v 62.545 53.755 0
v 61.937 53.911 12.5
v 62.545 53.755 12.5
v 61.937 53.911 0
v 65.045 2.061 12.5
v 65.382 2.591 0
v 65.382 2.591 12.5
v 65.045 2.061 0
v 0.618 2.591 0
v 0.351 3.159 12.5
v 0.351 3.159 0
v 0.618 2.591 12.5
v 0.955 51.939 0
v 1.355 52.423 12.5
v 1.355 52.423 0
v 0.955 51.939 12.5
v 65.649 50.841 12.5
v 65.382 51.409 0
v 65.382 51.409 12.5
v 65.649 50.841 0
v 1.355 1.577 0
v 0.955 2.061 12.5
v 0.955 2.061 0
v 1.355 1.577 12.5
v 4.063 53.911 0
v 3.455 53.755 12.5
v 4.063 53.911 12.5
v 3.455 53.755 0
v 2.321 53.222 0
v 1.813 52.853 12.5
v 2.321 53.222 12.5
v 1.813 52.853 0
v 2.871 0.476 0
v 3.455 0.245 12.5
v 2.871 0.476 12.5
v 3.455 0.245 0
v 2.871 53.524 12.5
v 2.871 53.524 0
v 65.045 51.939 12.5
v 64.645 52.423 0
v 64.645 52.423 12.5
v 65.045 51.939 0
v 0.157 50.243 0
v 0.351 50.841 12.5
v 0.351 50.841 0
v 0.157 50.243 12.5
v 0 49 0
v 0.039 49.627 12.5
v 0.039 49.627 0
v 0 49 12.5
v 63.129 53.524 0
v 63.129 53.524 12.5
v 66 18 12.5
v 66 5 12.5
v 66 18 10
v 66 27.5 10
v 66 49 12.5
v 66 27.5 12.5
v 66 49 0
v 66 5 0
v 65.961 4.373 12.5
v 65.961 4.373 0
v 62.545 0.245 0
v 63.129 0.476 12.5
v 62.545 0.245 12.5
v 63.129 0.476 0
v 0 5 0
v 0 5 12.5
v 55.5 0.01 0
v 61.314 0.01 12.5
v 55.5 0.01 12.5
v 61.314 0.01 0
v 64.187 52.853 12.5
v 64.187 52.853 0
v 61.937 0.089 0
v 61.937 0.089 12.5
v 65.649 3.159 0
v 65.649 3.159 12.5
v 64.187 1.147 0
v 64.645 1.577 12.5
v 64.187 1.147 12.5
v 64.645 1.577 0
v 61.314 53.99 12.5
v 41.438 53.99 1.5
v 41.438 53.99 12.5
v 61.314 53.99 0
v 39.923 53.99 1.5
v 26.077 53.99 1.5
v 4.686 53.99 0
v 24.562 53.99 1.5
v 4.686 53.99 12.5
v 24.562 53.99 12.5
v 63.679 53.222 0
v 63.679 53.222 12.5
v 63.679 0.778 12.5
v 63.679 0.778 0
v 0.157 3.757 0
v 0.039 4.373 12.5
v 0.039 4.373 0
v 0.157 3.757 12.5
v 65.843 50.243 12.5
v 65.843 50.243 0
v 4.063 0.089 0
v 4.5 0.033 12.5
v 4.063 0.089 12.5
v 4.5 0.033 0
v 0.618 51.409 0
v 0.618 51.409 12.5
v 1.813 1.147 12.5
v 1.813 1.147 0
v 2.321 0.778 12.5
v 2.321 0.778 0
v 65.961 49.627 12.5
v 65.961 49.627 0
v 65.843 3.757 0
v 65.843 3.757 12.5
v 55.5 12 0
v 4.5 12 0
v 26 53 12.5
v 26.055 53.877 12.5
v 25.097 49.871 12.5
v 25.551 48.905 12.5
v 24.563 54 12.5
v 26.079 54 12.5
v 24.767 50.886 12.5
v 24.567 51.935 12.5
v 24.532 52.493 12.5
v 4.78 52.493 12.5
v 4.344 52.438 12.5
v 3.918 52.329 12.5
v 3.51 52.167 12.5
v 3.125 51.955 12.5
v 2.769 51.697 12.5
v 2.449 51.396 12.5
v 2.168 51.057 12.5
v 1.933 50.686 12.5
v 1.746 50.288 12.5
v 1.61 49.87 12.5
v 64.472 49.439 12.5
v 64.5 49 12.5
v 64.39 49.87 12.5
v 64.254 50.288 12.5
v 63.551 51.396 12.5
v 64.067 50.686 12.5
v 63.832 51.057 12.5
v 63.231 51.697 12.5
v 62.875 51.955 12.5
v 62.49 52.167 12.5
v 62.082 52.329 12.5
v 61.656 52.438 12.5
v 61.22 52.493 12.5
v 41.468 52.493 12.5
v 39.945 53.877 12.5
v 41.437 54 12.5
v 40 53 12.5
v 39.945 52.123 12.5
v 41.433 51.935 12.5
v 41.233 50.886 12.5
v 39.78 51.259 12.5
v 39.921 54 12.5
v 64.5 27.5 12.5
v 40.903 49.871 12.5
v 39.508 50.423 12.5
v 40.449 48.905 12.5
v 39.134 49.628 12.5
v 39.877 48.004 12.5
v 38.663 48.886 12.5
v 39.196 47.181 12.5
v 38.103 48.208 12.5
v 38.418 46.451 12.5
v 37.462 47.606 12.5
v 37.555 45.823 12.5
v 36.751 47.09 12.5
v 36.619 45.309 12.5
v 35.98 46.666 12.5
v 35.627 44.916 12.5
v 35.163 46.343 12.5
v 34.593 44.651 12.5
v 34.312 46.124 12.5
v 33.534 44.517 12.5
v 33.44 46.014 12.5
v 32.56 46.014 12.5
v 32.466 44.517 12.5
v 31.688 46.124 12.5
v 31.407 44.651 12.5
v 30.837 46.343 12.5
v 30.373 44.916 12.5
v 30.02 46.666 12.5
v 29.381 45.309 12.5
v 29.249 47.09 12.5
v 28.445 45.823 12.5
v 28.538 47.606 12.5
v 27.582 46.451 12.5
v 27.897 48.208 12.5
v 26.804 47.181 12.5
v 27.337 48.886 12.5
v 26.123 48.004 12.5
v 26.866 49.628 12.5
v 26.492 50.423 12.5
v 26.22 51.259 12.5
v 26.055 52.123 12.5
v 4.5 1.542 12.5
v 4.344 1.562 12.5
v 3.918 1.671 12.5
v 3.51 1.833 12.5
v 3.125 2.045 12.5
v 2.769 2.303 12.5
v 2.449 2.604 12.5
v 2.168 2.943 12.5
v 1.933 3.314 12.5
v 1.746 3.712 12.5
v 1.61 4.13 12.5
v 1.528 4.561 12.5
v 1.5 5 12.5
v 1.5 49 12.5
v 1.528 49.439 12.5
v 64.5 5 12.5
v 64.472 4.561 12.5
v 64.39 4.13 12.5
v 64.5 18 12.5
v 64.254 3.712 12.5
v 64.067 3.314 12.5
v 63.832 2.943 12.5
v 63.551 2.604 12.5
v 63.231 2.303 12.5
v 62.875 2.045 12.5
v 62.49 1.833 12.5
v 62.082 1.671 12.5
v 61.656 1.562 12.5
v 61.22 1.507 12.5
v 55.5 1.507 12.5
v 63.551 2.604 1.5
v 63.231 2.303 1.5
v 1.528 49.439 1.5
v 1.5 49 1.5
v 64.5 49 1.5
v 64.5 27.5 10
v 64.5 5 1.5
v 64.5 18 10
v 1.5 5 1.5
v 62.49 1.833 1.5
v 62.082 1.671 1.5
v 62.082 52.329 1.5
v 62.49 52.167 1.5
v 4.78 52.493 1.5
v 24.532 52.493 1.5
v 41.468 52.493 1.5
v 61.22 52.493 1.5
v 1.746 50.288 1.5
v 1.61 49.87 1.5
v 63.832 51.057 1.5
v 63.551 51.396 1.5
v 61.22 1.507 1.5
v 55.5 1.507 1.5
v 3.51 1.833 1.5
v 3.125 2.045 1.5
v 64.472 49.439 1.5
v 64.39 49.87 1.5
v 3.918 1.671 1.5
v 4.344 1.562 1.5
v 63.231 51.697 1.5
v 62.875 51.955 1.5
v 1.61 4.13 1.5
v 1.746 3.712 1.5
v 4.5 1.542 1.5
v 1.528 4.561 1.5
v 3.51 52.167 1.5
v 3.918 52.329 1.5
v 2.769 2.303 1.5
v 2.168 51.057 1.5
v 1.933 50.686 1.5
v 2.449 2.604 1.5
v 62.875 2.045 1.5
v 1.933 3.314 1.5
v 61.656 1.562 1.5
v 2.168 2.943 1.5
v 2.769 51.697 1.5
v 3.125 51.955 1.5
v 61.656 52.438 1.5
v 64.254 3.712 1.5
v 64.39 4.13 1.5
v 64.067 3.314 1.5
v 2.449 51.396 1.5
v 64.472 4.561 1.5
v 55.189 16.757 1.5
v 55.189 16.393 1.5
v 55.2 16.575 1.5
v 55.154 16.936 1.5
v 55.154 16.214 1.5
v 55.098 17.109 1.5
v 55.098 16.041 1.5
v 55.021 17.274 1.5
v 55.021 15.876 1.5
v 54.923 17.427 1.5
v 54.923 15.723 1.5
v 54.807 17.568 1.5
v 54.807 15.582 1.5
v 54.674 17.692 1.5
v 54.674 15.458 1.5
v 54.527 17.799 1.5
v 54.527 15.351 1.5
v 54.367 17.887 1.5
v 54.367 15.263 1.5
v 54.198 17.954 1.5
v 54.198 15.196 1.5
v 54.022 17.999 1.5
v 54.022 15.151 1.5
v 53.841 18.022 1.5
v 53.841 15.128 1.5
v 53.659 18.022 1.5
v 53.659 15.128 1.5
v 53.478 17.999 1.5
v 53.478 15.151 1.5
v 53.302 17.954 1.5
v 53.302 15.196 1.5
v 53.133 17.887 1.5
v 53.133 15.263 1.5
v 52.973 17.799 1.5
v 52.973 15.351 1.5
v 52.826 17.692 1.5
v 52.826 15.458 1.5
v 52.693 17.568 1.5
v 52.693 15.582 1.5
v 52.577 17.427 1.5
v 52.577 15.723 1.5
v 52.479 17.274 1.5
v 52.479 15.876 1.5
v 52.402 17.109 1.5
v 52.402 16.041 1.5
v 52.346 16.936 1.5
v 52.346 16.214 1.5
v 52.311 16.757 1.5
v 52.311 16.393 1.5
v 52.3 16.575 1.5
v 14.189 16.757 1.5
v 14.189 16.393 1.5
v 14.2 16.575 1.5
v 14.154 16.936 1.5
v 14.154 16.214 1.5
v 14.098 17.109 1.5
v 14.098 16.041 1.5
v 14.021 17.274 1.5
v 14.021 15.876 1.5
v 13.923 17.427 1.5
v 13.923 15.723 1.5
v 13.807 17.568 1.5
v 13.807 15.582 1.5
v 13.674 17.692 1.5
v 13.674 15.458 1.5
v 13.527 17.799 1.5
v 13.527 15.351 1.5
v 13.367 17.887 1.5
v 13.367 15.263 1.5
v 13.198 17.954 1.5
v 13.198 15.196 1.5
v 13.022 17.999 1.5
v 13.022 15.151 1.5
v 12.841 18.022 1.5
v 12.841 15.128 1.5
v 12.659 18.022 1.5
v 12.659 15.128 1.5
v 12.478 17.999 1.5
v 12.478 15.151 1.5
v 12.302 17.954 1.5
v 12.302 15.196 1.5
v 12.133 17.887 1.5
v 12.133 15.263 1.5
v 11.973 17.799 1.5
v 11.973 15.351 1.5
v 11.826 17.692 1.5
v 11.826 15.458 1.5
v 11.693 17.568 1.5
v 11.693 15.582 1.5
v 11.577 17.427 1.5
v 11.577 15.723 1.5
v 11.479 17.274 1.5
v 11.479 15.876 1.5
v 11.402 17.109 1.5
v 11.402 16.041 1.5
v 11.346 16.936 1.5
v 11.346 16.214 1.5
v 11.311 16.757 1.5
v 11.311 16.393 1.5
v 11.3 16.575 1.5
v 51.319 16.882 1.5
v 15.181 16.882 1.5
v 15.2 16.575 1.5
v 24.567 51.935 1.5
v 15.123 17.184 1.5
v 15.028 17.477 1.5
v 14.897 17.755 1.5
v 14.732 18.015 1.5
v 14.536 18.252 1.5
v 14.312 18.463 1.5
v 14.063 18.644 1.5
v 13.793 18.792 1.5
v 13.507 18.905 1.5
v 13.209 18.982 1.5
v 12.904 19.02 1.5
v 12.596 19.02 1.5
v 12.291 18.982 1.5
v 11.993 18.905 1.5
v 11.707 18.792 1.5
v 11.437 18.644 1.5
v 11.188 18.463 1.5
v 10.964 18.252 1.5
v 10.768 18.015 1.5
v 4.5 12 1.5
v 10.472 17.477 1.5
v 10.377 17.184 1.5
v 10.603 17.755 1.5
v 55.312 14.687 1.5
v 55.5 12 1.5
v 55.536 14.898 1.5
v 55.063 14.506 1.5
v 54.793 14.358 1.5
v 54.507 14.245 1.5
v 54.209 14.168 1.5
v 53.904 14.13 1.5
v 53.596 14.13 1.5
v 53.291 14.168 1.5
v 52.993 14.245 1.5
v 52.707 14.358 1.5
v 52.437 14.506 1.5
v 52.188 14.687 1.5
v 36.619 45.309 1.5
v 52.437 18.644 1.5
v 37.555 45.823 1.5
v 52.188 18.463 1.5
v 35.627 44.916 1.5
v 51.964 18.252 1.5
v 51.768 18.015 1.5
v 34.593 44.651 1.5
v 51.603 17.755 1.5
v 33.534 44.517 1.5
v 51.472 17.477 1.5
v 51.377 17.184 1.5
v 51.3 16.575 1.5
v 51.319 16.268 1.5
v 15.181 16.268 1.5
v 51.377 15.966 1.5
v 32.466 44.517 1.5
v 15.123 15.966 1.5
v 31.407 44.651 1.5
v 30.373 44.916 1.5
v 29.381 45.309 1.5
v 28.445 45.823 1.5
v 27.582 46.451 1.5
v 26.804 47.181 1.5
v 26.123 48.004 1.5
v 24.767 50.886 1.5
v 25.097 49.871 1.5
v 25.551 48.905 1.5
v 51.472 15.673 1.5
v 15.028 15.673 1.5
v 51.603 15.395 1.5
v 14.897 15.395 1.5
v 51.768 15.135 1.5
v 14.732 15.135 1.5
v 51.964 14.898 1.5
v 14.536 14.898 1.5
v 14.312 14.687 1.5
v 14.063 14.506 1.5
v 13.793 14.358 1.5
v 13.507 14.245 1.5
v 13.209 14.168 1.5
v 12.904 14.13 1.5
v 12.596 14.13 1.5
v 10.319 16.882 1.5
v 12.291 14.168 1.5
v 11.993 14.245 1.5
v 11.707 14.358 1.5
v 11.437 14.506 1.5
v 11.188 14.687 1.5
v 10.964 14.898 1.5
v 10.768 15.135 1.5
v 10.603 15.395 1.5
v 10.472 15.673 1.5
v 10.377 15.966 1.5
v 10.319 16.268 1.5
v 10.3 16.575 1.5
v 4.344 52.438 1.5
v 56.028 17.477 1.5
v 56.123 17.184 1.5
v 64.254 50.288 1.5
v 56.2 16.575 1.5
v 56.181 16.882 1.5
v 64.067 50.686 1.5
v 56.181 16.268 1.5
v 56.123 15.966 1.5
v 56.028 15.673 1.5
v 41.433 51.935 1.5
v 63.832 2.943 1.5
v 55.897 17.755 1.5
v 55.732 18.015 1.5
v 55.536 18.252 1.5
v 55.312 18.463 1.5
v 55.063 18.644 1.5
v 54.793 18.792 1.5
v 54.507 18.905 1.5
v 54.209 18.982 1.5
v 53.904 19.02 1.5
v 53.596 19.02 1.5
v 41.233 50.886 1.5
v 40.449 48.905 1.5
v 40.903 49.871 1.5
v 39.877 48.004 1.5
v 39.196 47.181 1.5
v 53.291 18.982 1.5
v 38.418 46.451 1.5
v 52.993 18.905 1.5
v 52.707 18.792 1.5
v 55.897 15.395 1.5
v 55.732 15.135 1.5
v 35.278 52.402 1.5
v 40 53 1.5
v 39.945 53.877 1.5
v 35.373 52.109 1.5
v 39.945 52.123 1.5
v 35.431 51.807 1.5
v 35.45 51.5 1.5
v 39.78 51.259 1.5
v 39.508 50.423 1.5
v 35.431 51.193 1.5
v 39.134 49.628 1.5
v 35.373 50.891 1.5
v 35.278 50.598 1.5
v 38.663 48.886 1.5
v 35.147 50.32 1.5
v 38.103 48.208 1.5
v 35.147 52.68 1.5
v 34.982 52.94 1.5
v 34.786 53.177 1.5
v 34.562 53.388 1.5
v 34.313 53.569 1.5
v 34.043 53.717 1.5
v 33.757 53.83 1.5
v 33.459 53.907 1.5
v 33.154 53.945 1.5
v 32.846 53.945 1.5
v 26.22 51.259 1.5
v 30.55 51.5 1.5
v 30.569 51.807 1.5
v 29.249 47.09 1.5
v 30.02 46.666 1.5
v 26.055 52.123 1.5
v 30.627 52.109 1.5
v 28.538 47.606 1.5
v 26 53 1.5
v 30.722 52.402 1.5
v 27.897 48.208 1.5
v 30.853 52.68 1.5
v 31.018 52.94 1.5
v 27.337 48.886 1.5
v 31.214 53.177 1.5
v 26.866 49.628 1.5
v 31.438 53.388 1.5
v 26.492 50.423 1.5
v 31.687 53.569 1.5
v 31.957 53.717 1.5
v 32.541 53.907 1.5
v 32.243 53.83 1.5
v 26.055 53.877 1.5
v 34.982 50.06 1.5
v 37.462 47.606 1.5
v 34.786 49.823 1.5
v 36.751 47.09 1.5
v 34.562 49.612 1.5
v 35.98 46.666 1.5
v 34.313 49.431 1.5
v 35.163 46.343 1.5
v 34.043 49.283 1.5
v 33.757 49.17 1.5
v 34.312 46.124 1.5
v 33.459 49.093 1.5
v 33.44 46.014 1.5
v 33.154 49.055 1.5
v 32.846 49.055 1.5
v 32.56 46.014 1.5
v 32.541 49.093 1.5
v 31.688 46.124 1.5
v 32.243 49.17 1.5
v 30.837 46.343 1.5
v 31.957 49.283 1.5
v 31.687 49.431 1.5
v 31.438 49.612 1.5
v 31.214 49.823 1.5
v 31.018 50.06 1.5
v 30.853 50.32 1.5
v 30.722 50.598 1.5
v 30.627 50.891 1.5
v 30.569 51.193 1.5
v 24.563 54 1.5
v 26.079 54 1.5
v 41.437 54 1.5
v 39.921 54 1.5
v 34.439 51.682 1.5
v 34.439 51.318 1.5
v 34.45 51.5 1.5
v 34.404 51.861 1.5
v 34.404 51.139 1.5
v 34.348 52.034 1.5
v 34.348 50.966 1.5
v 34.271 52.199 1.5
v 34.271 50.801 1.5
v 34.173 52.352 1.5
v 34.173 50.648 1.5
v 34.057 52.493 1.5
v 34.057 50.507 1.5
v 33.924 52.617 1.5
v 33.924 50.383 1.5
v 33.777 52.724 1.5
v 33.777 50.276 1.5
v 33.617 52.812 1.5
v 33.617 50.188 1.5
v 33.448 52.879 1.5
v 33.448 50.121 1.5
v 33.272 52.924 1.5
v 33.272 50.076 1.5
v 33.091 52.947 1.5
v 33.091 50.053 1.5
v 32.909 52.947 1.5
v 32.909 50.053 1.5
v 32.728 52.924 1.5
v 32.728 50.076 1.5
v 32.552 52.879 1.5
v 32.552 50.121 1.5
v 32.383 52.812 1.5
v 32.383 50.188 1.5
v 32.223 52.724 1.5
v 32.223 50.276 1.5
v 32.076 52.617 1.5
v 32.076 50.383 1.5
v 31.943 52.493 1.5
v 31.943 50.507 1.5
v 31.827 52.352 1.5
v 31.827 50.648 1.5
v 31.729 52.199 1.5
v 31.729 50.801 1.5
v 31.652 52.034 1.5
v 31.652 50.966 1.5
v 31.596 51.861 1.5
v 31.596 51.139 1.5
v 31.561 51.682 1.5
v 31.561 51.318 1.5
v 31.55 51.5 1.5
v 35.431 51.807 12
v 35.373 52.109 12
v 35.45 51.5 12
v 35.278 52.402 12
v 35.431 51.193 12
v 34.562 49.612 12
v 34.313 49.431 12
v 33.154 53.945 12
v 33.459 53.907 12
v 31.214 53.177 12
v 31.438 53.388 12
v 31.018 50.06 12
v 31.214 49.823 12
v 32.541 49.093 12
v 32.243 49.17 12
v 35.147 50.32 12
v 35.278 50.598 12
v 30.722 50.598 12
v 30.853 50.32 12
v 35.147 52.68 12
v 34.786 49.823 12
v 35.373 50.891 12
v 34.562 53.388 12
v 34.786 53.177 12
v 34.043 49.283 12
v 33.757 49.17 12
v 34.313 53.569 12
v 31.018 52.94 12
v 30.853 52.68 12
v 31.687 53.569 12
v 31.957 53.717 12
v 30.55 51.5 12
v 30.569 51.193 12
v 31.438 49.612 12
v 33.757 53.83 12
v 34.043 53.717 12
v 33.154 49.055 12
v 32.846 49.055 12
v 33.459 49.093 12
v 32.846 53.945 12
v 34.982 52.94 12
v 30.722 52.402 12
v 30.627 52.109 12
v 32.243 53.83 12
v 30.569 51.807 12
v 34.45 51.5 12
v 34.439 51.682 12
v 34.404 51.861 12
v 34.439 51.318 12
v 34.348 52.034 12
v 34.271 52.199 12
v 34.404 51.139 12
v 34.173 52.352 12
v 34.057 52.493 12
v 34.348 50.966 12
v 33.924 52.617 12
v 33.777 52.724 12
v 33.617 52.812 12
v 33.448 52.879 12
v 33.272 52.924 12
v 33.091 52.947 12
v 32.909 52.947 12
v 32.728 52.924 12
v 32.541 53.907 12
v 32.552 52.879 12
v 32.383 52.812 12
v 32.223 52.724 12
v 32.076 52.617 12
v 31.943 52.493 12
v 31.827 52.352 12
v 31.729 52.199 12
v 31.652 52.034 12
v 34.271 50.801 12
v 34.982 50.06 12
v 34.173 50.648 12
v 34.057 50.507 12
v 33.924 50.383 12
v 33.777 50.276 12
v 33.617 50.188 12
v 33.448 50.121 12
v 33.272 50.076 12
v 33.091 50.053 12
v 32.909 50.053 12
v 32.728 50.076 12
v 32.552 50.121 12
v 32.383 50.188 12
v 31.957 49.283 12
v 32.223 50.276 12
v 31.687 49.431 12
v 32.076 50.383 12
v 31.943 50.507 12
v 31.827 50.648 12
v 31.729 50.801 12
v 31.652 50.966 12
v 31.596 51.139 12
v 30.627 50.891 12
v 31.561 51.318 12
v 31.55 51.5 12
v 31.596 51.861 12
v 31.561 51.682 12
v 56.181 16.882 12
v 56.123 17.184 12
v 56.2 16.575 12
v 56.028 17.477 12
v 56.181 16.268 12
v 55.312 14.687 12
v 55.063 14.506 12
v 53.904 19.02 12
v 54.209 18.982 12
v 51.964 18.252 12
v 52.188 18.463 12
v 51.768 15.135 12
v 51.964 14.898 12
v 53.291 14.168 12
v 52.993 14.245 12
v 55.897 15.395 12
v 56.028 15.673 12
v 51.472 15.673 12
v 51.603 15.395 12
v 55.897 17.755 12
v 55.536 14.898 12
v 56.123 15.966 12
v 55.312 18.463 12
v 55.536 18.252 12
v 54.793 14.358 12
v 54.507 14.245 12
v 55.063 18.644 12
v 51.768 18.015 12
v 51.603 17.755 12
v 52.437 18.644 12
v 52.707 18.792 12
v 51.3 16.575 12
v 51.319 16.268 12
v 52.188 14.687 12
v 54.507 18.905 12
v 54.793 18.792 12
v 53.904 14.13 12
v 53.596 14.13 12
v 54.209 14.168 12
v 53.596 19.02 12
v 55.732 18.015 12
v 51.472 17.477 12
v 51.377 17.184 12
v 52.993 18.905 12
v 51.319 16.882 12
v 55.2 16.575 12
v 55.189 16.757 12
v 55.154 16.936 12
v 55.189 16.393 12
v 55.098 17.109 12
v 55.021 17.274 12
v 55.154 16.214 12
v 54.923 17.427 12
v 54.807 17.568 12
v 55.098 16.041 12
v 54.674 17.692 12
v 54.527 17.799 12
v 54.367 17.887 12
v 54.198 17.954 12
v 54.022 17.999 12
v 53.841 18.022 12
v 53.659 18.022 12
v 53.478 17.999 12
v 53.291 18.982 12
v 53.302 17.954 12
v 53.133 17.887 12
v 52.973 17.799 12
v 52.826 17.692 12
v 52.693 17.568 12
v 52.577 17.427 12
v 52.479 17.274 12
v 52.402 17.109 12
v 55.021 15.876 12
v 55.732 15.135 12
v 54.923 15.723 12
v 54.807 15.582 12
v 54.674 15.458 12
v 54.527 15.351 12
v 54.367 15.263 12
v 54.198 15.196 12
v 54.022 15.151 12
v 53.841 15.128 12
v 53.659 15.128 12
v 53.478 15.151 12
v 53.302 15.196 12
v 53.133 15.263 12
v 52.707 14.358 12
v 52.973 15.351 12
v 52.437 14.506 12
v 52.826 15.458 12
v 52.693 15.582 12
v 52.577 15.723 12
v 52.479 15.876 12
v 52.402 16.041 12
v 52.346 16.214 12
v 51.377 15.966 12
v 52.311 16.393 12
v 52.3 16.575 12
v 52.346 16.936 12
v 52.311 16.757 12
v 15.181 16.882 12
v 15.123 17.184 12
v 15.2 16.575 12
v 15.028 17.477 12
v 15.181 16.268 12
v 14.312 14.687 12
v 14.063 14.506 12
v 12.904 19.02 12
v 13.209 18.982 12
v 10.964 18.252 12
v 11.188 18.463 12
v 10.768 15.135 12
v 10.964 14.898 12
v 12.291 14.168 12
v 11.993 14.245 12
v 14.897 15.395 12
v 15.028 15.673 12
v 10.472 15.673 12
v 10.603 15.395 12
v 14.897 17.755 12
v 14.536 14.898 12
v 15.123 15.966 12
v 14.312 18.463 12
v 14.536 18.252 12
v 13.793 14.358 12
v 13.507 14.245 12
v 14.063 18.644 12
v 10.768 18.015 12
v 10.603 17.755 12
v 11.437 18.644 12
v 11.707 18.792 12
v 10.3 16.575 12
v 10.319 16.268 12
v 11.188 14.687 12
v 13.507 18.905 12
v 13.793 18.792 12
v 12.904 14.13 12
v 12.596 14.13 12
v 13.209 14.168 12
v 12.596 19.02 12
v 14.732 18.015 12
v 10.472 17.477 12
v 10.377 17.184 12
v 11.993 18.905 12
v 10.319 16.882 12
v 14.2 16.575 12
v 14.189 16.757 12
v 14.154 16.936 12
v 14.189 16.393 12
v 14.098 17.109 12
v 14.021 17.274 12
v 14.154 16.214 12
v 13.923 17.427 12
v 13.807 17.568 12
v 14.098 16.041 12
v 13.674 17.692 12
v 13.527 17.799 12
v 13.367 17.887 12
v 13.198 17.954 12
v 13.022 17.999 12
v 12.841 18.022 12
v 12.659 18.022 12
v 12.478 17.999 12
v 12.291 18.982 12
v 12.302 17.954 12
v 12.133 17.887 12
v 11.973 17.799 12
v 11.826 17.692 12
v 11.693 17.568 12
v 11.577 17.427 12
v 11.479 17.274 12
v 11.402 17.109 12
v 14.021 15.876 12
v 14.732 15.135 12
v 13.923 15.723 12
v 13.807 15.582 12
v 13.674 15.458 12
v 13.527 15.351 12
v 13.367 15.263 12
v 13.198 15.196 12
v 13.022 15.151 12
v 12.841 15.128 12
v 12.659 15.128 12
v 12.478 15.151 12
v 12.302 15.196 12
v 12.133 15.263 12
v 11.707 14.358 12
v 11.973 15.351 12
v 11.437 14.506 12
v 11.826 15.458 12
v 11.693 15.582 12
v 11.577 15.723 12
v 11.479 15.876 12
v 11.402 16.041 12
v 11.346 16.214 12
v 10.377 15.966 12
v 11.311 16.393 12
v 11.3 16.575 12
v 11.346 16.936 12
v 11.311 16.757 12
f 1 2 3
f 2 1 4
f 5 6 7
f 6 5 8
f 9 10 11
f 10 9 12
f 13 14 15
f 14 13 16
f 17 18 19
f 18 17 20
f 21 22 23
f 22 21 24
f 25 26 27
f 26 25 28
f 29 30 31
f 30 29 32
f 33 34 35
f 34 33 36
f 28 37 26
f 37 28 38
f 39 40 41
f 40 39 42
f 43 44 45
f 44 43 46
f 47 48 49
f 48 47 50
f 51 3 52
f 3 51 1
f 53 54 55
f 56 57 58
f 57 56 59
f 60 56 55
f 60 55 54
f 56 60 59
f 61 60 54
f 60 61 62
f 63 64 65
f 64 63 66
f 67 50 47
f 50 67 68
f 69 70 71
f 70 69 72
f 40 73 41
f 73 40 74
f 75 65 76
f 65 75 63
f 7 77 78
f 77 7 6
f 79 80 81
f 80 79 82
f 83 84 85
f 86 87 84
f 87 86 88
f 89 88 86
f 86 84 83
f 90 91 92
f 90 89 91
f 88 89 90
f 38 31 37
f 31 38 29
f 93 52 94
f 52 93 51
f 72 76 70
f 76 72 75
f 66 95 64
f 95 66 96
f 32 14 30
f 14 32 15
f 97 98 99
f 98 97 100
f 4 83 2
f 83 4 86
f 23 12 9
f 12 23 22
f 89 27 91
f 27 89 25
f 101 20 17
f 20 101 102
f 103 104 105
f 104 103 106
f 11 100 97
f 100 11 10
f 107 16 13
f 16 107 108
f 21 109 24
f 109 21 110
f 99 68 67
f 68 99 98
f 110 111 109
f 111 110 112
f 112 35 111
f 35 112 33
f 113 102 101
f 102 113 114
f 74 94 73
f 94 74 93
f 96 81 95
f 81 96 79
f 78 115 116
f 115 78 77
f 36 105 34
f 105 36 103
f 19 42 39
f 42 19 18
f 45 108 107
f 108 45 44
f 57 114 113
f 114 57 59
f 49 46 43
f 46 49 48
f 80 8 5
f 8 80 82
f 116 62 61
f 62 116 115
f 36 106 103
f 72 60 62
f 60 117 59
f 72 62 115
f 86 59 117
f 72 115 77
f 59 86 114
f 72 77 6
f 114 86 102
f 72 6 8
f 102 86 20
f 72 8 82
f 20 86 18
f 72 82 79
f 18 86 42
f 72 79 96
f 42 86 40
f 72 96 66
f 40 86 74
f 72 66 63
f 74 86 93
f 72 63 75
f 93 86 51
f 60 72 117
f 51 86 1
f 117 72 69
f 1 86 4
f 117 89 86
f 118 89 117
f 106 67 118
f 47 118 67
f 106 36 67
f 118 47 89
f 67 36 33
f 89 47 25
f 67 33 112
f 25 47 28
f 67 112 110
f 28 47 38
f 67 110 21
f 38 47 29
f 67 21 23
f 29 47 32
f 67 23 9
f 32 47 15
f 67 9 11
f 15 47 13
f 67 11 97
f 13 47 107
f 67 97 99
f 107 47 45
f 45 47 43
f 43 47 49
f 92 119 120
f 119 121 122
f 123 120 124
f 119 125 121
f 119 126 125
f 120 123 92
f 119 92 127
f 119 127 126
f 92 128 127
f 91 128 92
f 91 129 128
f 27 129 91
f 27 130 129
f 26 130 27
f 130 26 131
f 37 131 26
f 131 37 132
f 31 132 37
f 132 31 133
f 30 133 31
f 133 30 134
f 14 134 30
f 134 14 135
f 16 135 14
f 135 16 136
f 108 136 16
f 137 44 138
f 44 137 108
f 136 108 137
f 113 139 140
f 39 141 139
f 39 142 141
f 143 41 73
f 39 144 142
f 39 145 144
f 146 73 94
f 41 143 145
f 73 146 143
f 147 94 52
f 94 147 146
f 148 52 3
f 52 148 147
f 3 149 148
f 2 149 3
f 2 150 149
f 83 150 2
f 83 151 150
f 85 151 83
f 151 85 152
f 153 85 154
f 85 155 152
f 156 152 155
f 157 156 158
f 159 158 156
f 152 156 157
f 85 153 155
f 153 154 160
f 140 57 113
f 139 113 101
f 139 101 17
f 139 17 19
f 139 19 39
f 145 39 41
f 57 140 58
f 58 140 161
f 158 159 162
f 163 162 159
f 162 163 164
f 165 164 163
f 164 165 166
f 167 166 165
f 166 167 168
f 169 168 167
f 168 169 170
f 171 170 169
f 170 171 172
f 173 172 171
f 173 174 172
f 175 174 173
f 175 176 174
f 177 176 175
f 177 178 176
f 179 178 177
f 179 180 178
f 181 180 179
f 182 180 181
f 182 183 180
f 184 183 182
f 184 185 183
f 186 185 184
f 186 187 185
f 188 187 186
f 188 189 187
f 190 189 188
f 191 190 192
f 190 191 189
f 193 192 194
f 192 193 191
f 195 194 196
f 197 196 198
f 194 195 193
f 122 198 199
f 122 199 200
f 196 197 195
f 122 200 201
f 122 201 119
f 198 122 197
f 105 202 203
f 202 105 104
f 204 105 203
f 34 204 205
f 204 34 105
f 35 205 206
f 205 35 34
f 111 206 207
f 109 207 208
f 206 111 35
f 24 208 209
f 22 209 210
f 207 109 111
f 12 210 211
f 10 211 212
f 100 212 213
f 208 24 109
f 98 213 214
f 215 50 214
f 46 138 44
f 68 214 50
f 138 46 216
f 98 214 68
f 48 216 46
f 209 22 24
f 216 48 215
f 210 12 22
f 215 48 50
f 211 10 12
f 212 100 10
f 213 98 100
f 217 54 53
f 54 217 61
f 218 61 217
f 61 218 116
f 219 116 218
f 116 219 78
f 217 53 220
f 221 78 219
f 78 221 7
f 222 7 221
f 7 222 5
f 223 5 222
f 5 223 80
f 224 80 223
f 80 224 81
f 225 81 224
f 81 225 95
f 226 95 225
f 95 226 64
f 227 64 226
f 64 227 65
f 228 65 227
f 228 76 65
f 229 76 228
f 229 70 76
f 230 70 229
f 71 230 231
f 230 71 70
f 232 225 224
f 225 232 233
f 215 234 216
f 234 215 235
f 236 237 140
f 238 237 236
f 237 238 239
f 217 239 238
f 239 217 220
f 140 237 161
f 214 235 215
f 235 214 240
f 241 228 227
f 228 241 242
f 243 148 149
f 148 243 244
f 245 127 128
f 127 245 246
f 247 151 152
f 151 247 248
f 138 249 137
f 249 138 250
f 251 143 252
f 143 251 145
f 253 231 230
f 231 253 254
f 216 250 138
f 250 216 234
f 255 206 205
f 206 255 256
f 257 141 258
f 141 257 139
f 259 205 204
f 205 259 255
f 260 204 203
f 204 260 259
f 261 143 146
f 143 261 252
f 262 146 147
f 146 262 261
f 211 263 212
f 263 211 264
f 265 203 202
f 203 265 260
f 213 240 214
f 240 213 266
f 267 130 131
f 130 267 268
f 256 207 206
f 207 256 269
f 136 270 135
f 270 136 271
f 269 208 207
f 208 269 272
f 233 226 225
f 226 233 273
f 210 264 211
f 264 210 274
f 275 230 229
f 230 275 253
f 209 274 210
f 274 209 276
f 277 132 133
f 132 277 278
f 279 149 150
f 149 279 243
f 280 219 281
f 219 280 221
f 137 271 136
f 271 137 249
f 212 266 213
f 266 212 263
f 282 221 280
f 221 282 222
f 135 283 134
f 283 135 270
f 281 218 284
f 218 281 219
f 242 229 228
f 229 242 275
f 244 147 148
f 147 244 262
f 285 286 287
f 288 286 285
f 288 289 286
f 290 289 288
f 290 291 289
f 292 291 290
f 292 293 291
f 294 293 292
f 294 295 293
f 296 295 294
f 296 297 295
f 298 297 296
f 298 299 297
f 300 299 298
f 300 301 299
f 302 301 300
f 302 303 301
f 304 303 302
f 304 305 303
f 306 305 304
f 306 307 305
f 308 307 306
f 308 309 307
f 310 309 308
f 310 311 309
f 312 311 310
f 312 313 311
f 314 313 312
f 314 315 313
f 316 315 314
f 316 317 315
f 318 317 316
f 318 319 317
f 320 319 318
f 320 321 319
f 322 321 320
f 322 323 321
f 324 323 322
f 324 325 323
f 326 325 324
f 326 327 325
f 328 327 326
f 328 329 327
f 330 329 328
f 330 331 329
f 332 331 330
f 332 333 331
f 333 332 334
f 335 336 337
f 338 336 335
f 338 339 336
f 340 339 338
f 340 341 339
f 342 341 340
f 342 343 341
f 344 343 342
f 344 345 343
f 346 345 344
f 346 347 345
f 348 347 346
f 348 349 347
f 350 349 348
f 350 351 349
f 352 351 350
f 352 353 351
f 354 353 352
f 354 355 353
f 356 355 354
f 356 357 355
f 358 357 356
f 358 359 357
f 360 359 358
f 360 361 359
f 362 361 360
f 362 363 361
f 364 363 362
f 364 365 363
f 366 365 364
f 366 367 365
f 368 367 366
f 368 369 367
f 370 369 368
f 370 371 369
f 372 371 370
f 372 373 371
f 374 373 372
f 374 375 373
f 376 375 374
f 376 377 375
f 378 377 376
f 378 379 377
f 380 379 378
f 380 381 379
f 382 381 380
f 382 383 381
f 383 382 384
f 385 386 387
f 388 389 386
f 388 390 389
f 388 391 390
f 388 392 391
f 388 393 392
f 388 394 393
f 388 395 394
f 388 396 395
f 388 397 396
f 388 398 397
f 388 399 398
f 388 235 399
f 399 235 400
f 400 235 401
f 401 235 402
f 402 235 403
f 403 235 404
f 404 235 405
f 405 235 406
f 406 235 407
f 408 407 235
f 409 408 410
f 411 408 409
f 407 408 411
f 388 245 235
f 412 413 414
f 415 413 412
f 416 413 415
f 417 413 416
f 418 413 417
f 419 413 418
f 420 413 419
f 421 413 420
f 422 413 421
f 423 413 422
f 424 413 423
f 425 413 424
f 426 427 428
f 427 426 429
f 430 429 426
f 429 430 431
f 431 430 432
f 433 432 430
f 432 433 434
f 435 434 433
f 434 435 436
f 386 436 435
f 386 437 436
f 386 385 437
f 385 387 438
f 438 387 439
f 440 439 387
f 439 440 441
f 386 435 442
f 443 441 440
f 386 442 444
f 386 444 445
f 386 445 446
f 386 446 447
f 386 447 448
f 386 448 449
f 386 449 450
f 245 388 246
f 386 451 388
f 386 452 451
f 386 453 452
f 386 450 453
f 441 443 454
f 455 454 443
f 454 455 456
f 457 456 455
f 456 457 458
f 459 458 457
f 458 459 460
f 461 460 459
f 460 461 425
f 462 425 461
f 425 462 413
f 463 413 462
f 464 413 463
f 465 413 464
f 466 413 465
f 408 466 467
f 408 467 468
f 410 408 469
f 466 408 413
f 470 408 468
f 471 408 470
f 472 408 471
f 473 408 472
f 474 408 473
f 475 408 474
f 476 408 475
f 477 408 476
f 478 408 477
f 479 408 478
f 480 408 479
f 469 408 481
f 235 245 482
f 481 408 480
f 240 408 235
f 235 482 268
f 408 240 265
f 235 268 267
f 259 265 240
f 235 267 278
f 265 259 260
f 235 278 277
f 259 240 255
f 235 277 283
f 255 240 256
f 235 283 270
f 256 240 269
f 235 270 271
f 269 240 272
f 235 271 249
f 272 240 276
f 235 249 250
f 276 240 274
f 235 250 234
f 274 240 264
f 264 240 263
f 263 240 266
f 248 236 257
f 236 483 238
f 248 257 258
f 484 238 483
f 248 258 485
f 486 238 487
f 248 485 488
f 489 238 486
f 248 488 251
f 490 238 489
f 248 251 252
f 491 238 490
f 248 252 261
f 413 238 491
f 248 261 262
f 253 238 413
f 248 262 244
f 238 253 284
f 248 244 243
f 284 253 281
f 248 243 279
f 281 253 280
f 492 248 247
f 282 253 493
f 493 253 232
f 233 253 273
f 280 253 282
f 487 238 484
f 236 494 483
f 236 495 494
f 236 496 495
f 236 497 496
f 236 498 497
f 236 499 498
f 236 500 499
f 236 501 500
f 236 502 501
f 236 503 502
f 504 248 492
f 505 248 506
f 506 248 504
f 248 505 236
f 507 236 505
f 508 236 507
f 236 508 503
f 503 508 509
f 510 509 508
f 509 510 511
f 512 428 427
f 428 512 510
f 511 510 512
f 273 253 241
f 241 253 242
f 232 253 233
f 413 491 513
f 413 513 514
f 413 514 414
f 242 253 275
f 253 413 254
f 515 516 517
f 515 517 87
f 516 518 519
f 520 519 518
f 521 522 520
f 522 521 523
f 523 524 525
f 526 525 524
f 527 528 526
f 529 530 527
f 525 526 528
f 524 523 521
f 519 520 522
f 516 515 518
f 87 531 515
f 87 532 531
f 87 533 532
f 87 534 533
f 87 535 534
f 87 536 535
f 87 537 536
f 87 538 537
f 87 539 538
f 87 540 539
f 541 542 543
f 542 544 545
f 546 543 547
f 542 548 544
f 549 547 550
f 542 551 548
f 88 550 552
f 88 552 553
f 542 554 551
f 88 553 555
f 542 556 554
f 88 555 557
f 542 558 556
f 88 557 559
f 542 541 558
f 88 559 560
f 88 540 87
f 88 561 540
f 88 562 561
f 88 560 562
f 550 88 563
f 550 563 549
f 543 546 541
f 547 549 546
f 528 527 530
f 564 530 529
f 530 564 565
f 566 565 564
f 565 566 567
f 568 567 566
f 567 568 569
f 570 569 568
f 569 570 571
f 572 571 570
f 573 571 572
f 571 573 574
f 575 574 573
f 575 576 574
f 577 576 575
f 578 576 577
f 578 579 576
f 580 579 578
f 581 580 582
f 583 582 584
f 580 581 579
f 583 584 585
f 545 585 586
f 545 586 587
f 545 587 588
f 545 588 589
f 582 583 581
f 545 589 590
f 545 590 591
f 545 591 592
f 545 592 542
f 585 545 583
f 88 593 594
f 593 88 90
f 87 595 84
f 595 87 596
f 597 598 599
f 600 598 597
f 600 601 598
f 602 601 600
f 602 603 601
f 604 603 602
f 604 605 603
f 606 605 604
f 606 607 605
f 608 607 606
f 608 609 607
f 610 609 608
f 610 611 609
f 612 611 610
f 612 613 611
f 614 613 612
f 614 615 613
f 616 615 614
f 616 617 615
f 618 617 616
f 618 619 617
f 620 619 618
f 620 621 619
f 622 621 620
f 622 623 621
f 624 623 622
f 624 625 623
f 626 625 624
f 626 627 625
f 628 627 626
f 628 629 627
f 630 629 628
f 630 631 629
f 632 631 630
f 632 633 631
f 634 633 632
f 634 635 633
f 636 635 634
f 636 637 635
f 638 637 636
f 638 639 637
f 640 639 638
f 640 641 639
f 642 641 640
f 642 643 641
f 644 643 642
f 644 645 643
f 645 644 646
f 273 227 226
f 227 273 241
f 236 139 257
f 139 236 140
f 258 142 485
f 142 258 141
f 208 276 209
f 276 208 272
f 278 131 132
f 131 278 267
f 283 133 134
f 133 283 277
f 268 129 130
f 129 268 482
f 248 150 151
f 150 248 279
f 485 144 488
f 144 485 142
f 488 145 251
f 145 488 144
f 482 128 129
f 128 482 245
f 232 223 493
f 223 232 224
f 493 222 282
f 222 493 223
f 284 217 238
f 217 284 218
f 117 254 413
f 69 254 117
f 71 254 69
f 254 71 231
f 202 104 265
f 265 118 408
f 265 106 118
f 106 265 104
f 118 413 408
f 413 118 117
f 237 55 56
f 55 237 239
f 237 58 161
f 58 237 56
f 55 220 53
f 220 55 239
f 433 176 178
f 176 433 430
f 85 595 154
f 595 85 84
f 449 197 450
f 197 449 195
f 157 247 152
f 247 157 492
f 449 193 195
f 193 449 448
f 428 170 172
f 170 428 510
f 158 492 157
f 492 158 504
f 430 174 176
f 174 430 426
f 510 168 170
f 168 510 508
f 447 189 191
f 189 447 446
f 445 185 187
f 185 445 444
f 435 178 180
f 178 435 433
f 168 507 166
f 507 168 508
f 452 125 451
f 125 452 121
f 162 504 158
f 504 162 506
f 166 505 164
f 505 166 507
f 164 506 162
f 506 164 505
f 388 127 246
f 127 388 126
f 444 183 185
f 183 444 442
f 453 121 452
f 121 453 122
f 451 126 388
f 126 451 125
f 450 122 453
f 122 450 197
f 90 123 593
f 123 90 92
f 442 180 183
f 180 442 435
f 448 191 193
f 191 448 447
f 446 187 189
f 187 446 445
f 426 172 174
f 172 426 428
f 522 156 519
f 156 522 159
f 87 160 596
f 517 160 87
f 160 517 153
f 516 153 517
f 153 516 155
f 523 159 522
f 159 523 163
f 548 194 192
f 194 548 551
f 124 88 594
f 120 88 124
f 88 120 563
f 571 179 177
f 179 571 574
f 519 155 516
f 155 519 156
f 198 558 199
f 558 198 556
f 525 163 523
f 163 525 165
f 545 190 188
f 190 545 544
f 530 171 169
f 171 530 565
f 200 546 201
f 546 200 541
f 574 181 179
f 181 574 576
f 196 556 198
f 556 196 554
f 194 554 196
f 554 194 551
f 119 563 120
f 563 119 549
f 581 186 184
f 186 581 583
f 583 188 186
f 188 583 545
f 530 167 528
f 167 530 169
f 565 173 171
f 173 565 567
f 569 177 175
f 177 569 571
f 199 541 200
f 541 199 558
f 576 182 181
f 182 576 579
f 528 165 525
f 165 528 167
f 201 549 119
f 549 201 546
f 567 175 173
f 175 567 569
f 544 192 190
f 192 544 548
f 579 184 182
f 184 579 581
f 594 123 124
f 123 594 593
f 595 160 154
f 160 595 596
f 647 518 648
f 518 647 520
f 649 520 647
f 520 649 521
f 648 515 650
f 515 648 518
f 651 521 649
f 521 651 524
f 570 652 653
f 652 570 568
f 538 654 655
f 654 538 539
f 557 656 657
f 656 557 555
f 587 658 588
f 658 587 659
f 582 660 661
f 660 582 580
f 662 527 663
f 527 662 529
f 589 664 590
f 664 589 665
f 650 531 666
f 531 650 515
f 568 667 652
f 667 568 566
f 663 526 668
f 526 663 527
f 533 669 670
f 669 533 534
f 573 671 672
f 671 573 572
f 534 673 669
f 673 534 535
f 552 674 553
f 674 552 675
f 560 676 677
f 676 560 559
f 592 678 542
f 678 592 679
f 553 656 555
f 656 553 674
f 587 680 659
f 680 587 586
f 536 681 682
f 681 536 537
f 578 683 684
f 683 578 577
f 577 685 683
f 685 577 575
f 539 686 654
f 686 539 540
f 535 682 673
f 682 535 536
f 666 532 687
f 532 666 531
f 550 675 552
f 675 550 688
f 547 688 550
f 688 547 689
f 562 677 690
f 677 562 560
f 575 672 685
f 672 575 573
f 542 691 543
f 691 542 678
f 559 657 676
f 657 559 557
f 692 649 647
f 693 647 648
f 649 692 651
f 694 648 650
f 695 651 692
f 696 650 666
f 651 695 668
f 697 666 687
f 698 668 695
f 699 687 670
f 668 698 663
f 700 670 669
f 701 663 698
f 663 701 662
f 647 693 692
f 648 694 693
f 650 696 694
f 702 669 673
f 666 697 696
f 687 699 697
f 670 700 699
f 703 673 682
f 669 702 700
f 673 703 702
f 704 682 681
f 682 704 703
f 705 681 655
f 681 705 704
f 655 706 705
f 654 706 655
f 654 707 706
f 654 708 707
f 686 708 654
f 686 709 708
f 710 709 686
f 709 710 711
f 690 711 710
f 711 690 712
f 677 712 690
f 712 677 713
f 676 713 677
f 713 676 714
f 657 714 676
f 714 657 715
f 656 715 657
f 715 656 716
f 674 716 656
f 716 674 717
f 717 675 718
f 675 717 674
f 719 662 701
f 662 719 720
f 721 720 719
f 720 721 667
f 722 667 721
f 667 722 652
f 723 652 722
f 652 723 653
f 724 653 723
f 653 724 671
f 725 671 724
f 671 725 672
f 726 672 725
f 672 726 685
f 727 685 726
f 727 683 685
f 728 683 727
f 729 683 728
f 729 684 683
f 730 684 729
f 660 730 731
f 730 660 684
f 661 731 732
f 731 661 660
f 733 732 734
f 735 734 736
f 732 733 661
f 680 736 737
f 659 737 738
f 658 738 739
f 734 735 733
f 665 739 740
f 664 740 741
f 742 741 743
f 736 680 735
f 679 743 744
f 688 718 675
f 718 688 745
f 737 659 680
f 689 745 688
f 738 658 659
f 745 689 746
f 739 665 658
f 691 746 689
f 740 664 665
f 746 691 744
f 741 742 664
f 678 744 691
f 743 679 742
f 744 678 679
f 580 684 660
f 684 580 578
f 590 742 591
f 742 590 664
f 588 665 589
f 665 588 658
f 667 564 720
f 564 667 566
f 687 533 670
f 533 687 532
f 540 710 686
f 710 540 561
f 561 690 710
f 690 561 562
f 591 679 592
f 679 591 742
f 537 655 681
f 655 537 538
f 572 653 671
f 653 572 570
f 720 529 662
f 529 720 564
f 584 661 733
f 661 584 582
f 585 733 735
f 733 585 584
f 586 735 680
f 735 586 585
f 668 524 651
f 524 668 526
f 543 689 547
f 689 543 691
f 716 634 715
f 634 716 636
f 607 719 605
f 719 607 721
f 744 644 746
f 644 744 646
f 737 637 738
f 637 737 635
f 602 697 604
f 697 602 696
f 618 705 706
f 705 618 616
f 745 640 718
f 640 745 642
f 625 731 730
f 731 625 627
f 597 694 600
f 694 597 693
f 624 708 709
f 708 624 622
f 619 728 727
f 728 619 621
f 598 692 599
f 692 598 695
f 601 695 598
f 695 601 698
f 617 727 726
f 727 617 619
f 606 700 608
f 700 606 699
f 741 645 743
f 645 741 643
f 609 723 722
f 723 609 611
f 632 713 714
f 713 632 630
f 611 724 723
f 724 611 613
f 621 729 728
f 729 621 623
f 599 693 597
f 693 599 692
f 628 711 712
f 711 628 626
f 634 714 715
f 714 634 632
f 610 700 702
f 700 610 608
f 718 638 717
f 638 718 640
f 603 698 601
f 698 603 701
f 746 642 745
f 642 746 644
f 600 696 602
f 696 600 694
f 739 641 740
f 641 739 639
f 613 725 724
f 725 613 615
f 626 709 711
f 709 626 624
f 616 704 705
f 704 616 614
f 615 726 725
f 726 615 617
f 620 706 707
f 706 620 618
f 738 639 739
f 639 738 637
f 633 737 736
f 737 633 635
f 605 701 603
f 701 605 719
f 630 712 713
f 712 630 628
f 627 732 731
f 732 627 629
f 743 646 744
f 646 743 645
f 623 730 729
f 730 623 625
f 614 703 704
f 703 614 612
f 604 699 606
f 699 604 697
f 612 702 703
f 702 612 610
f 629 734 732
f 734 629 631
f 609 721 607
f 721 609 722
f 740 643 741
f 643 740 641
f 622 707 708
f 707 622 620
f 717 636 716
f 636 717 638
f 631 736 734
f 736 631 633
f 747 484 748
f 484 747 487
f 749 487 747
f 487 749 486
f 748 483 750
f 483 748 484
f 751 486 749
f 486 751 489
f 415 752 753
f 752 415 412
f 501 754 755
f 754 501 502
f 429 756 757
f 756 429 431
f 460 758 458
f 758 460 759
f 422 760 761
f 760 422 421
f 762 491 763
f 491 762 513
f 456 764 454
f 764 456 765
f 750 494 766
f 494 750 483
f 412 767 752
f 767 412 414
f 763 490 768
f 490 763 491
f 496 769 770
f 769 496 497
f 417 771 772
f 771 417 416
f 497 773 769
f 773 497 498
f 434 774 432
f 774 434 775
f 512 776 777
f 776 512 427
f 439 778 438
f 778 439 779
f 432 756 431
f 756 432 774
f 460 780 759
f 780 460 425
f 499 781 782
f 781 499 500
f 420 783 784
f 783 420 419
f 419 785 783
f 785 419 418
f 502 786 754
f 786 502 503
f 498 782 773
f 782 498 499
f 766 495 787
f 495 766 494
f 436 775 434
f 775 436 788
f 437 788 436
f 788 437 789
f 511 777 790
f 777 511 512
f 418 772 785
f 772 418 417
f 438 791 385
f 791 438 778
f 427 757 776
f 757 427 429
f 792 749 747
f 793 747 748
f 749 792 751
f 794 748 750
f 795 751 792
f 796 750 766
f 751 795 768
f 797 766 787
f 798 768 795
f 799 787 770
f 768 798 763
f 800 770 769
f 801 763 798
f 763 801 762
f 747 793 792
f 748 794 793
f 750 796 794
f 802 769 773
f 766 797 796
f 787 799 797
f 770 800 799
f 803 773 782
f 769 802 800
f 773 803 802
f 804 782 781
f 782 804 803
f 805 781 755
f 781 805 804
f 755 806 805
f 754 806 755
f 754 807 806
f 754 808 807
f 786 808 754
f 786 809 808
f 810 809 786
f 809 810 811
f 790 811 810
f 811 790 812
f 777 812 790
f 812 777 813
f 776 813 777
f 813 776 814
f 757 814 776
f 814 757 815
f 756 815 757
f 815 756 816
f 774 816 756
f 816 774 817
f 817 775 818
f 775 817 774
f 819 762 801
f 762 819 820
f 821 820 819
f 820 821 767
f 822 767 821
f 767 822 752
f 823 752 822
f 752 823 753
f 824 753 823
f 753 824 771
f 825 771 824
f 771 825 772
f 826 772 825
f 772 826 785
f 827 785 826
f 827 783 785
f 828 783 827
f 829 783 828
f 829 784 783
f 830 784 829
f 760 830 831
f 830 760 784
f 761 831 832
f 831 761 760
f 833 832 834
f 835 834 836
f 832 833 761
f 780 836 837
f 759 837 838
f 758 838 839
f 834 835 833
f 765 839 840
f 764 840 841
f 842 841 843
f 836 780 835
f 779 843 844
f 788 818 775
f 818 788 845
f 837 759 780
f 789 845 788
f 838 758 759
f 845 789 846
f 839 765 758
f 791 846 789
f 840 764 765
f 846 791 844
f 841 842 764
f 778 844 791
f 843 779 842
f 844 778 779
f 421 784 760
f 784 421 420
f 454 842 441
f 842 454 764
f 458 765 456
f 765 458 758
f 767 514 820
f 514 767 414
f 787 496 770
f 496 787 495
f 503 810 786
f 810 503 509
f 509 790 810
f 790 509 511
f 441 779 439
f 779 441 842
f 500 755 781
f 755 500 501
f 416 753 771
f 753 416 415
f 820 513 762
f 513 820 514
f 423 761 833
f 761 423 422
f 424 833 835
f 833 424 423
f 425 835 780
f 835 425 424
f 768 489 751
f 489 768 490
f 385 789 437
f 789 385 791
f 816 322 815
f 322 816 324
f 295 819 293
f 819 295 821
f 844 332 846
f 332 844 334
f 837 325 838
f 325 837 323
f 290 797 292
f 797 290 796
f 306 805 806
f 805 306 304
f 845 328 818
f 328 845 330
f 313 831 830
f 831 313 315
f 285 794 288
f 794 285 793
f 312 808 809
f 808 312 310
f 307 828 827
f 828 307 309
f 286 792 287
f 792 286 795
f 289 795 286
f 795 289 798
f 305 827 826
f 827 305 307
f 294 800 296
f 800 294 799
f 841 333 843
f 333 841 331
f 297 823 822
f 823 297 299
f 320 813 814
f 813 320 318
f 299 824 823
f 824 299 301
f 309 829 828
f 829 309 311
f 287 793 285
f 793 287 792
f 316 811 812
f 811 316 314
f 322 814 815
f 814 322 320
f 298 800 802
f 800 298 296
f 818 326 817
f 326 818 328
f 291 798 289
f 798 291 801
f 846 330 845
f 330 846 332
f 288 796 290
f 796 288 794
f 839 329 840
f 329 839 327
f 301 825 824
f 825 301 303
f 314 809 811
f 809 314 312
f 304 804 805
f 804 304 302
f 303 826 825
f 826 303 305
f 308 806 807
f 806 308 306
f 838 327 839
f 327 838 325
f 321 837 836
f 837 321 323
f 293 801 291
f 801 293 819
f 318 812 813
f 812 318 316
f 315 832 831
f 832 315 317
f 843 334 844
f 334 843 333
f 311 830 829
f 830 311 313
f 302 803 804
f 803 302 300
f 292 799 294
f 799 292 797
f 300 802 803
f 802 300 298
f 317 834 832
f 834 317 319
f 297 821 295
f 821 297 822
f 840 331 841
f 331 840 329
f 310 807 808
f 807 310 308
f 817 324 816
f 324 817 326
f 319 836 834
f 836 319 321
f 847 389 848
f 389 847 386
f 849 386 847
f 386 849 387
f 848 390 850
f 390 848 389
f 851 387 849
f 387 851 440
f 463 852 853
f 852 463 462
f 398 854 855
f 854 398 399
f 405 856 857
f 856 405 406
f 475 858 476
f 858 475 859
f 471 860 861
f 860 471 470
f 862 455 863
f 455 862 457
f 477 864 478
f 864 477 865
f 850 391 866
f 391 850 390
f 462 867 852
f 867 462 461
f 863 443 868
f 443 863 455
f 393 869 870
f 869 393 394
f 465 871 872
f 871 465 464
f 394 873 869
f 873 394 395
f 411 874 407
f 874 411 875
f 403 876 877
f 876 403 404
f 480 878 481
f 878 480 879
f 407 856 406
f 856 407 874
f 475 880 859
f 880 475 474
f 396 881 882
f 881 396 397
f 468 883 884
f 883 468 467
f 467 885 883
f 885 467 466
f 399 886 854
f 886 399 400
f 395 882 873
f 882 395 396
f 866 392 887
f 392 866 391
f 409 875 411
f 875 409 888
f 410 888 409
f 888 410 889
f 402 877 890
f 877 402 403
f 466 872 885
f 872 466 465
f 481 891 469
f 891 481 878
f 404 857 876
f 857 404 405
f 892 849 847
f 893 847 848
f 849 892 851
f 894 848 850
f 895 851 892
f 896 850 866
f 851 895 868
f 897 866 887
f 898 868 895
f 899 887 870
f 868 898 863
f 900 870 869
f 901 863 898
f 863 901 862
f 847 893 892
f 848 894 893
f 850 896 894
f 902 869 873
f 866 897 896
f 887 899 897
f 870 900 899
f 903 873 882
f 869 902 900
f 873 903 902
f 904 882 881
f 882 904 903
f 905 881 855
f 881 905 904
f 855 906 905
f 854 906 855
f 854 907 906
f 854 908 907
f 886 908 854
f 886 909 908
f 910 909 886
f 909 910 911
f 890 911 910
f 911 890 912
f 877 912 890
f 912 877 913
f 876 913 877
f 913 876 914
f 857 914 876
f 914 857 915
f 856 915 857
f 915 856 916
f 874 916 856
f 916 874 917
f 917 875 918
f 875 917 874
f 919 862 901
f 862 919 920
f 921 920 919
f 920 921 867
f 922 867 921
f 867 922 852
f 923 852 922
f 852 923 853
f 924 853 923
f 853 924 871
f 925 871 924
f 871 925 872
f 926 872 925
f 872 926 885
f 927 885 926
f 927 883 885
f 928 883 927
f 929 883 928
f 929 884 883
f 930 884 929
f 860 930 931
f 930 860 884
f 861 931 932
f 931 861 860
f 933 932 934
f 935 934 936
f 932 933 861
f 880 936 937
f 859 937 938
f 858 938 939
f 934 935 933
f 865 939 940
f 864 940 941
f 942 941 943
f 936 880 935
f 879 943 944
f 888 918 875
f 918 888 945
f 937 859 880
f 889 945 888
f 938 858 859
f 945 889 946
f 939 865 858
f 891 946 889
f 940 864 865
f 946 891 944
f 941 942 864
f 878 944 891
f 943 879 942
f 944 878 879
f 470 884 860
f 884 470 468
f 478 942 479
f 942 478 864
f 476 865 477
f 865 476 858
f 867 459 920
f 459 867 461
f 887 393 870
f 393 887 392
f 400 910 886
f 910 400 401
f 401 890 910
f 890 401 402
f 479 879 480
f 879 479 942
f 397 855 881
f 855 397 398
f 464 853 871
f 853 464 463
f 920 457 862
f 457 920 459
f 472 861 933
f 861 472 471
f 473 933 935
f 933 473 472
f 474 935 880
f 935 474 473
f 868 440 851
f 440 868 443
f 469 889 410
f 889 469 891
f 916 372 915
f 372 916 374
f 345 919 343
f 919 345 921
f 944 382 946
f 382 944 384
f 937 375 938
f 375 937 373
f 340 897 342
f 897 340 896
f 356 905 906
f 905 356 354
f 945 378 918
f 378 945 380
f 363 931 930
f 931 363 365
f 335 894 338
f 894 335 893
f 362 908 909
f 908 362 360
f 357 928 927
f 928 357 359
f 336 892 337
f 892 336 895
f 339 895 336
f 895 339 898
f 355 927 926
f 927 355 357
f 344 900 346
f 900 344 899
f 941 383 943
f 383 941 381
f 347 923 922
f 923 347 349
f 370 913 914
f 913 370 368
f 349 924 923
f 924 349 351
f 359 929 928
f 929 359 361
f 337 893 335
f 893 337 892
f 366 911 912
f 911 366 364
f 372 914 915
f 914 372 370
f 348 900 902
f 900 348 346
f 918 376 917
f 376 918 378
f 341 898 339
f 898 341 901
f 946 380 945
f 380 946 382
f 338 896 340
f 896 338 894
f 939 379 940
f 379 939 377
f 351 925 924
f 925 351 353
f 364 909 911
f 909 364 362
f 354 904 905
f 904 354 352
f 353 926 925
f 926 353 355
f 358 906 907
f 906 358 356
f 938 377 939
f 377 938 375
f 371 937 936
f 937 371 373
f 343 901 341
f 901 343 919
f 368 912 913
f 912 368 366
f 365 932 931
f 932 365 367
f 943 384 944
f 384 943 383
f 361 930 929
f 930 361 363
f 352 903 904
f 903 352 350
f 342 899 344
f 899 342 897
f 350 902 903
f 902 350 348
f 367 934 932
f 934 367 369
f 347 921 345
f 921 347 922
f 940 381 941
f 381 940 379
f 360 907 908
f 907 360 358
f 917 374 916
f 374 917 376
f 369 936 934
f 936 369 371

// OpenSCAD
$fn=50;
h = 12.5;

module roundtagle(x, y, z, r) {
    translate([r, r, 0]) minkowski() {
        cube([x - 2*r, y - 2*r-1, z]);
        cylinder(r=r, h=1);
    }
}

module standoff() {
    difference() {
        cylinder(d=2.9+2, h=h-2);
        cylinder(d=2.9, h=h-2);
    }
}

difference() {
    roundtagle(66, 55, h - 1, 5);  // outer
    translate([1.5, 1.5, 1.5]) roundtagle(66 - 3, 55 - 3, h - 1.5, 5 - 1.5); // inner
    translate([4.5, 0, 0]) cube([51, 12, h]); // battery cutout
    translate([33 - 15 / 2, 55 - 2.6, 1.5]) cube([15, 3, h - 1]);  // lanyard cutout
    translate([66-1.5, 18, h-2.5]) cube([1.5, 9.5, 2.5]);  // switch cutout
}

translate([33, 55 - 3.5, 1.5]) standoff(); 
translate([53.75, 55 - 38.425, 1.5]) standoff(); 
translate([12.75, 55 - 38.425, 1.5]) standoff();

// lanyard guard arc
translate([33, 55 - 2, 1.5]) difference() {
    cylinder(d=17, h=h -1.5);
    cylinder(d=17-3, h=h -1.5);
    translate([-8.5, 1, 0]) cube([17, 10, h-1.5]);
}
